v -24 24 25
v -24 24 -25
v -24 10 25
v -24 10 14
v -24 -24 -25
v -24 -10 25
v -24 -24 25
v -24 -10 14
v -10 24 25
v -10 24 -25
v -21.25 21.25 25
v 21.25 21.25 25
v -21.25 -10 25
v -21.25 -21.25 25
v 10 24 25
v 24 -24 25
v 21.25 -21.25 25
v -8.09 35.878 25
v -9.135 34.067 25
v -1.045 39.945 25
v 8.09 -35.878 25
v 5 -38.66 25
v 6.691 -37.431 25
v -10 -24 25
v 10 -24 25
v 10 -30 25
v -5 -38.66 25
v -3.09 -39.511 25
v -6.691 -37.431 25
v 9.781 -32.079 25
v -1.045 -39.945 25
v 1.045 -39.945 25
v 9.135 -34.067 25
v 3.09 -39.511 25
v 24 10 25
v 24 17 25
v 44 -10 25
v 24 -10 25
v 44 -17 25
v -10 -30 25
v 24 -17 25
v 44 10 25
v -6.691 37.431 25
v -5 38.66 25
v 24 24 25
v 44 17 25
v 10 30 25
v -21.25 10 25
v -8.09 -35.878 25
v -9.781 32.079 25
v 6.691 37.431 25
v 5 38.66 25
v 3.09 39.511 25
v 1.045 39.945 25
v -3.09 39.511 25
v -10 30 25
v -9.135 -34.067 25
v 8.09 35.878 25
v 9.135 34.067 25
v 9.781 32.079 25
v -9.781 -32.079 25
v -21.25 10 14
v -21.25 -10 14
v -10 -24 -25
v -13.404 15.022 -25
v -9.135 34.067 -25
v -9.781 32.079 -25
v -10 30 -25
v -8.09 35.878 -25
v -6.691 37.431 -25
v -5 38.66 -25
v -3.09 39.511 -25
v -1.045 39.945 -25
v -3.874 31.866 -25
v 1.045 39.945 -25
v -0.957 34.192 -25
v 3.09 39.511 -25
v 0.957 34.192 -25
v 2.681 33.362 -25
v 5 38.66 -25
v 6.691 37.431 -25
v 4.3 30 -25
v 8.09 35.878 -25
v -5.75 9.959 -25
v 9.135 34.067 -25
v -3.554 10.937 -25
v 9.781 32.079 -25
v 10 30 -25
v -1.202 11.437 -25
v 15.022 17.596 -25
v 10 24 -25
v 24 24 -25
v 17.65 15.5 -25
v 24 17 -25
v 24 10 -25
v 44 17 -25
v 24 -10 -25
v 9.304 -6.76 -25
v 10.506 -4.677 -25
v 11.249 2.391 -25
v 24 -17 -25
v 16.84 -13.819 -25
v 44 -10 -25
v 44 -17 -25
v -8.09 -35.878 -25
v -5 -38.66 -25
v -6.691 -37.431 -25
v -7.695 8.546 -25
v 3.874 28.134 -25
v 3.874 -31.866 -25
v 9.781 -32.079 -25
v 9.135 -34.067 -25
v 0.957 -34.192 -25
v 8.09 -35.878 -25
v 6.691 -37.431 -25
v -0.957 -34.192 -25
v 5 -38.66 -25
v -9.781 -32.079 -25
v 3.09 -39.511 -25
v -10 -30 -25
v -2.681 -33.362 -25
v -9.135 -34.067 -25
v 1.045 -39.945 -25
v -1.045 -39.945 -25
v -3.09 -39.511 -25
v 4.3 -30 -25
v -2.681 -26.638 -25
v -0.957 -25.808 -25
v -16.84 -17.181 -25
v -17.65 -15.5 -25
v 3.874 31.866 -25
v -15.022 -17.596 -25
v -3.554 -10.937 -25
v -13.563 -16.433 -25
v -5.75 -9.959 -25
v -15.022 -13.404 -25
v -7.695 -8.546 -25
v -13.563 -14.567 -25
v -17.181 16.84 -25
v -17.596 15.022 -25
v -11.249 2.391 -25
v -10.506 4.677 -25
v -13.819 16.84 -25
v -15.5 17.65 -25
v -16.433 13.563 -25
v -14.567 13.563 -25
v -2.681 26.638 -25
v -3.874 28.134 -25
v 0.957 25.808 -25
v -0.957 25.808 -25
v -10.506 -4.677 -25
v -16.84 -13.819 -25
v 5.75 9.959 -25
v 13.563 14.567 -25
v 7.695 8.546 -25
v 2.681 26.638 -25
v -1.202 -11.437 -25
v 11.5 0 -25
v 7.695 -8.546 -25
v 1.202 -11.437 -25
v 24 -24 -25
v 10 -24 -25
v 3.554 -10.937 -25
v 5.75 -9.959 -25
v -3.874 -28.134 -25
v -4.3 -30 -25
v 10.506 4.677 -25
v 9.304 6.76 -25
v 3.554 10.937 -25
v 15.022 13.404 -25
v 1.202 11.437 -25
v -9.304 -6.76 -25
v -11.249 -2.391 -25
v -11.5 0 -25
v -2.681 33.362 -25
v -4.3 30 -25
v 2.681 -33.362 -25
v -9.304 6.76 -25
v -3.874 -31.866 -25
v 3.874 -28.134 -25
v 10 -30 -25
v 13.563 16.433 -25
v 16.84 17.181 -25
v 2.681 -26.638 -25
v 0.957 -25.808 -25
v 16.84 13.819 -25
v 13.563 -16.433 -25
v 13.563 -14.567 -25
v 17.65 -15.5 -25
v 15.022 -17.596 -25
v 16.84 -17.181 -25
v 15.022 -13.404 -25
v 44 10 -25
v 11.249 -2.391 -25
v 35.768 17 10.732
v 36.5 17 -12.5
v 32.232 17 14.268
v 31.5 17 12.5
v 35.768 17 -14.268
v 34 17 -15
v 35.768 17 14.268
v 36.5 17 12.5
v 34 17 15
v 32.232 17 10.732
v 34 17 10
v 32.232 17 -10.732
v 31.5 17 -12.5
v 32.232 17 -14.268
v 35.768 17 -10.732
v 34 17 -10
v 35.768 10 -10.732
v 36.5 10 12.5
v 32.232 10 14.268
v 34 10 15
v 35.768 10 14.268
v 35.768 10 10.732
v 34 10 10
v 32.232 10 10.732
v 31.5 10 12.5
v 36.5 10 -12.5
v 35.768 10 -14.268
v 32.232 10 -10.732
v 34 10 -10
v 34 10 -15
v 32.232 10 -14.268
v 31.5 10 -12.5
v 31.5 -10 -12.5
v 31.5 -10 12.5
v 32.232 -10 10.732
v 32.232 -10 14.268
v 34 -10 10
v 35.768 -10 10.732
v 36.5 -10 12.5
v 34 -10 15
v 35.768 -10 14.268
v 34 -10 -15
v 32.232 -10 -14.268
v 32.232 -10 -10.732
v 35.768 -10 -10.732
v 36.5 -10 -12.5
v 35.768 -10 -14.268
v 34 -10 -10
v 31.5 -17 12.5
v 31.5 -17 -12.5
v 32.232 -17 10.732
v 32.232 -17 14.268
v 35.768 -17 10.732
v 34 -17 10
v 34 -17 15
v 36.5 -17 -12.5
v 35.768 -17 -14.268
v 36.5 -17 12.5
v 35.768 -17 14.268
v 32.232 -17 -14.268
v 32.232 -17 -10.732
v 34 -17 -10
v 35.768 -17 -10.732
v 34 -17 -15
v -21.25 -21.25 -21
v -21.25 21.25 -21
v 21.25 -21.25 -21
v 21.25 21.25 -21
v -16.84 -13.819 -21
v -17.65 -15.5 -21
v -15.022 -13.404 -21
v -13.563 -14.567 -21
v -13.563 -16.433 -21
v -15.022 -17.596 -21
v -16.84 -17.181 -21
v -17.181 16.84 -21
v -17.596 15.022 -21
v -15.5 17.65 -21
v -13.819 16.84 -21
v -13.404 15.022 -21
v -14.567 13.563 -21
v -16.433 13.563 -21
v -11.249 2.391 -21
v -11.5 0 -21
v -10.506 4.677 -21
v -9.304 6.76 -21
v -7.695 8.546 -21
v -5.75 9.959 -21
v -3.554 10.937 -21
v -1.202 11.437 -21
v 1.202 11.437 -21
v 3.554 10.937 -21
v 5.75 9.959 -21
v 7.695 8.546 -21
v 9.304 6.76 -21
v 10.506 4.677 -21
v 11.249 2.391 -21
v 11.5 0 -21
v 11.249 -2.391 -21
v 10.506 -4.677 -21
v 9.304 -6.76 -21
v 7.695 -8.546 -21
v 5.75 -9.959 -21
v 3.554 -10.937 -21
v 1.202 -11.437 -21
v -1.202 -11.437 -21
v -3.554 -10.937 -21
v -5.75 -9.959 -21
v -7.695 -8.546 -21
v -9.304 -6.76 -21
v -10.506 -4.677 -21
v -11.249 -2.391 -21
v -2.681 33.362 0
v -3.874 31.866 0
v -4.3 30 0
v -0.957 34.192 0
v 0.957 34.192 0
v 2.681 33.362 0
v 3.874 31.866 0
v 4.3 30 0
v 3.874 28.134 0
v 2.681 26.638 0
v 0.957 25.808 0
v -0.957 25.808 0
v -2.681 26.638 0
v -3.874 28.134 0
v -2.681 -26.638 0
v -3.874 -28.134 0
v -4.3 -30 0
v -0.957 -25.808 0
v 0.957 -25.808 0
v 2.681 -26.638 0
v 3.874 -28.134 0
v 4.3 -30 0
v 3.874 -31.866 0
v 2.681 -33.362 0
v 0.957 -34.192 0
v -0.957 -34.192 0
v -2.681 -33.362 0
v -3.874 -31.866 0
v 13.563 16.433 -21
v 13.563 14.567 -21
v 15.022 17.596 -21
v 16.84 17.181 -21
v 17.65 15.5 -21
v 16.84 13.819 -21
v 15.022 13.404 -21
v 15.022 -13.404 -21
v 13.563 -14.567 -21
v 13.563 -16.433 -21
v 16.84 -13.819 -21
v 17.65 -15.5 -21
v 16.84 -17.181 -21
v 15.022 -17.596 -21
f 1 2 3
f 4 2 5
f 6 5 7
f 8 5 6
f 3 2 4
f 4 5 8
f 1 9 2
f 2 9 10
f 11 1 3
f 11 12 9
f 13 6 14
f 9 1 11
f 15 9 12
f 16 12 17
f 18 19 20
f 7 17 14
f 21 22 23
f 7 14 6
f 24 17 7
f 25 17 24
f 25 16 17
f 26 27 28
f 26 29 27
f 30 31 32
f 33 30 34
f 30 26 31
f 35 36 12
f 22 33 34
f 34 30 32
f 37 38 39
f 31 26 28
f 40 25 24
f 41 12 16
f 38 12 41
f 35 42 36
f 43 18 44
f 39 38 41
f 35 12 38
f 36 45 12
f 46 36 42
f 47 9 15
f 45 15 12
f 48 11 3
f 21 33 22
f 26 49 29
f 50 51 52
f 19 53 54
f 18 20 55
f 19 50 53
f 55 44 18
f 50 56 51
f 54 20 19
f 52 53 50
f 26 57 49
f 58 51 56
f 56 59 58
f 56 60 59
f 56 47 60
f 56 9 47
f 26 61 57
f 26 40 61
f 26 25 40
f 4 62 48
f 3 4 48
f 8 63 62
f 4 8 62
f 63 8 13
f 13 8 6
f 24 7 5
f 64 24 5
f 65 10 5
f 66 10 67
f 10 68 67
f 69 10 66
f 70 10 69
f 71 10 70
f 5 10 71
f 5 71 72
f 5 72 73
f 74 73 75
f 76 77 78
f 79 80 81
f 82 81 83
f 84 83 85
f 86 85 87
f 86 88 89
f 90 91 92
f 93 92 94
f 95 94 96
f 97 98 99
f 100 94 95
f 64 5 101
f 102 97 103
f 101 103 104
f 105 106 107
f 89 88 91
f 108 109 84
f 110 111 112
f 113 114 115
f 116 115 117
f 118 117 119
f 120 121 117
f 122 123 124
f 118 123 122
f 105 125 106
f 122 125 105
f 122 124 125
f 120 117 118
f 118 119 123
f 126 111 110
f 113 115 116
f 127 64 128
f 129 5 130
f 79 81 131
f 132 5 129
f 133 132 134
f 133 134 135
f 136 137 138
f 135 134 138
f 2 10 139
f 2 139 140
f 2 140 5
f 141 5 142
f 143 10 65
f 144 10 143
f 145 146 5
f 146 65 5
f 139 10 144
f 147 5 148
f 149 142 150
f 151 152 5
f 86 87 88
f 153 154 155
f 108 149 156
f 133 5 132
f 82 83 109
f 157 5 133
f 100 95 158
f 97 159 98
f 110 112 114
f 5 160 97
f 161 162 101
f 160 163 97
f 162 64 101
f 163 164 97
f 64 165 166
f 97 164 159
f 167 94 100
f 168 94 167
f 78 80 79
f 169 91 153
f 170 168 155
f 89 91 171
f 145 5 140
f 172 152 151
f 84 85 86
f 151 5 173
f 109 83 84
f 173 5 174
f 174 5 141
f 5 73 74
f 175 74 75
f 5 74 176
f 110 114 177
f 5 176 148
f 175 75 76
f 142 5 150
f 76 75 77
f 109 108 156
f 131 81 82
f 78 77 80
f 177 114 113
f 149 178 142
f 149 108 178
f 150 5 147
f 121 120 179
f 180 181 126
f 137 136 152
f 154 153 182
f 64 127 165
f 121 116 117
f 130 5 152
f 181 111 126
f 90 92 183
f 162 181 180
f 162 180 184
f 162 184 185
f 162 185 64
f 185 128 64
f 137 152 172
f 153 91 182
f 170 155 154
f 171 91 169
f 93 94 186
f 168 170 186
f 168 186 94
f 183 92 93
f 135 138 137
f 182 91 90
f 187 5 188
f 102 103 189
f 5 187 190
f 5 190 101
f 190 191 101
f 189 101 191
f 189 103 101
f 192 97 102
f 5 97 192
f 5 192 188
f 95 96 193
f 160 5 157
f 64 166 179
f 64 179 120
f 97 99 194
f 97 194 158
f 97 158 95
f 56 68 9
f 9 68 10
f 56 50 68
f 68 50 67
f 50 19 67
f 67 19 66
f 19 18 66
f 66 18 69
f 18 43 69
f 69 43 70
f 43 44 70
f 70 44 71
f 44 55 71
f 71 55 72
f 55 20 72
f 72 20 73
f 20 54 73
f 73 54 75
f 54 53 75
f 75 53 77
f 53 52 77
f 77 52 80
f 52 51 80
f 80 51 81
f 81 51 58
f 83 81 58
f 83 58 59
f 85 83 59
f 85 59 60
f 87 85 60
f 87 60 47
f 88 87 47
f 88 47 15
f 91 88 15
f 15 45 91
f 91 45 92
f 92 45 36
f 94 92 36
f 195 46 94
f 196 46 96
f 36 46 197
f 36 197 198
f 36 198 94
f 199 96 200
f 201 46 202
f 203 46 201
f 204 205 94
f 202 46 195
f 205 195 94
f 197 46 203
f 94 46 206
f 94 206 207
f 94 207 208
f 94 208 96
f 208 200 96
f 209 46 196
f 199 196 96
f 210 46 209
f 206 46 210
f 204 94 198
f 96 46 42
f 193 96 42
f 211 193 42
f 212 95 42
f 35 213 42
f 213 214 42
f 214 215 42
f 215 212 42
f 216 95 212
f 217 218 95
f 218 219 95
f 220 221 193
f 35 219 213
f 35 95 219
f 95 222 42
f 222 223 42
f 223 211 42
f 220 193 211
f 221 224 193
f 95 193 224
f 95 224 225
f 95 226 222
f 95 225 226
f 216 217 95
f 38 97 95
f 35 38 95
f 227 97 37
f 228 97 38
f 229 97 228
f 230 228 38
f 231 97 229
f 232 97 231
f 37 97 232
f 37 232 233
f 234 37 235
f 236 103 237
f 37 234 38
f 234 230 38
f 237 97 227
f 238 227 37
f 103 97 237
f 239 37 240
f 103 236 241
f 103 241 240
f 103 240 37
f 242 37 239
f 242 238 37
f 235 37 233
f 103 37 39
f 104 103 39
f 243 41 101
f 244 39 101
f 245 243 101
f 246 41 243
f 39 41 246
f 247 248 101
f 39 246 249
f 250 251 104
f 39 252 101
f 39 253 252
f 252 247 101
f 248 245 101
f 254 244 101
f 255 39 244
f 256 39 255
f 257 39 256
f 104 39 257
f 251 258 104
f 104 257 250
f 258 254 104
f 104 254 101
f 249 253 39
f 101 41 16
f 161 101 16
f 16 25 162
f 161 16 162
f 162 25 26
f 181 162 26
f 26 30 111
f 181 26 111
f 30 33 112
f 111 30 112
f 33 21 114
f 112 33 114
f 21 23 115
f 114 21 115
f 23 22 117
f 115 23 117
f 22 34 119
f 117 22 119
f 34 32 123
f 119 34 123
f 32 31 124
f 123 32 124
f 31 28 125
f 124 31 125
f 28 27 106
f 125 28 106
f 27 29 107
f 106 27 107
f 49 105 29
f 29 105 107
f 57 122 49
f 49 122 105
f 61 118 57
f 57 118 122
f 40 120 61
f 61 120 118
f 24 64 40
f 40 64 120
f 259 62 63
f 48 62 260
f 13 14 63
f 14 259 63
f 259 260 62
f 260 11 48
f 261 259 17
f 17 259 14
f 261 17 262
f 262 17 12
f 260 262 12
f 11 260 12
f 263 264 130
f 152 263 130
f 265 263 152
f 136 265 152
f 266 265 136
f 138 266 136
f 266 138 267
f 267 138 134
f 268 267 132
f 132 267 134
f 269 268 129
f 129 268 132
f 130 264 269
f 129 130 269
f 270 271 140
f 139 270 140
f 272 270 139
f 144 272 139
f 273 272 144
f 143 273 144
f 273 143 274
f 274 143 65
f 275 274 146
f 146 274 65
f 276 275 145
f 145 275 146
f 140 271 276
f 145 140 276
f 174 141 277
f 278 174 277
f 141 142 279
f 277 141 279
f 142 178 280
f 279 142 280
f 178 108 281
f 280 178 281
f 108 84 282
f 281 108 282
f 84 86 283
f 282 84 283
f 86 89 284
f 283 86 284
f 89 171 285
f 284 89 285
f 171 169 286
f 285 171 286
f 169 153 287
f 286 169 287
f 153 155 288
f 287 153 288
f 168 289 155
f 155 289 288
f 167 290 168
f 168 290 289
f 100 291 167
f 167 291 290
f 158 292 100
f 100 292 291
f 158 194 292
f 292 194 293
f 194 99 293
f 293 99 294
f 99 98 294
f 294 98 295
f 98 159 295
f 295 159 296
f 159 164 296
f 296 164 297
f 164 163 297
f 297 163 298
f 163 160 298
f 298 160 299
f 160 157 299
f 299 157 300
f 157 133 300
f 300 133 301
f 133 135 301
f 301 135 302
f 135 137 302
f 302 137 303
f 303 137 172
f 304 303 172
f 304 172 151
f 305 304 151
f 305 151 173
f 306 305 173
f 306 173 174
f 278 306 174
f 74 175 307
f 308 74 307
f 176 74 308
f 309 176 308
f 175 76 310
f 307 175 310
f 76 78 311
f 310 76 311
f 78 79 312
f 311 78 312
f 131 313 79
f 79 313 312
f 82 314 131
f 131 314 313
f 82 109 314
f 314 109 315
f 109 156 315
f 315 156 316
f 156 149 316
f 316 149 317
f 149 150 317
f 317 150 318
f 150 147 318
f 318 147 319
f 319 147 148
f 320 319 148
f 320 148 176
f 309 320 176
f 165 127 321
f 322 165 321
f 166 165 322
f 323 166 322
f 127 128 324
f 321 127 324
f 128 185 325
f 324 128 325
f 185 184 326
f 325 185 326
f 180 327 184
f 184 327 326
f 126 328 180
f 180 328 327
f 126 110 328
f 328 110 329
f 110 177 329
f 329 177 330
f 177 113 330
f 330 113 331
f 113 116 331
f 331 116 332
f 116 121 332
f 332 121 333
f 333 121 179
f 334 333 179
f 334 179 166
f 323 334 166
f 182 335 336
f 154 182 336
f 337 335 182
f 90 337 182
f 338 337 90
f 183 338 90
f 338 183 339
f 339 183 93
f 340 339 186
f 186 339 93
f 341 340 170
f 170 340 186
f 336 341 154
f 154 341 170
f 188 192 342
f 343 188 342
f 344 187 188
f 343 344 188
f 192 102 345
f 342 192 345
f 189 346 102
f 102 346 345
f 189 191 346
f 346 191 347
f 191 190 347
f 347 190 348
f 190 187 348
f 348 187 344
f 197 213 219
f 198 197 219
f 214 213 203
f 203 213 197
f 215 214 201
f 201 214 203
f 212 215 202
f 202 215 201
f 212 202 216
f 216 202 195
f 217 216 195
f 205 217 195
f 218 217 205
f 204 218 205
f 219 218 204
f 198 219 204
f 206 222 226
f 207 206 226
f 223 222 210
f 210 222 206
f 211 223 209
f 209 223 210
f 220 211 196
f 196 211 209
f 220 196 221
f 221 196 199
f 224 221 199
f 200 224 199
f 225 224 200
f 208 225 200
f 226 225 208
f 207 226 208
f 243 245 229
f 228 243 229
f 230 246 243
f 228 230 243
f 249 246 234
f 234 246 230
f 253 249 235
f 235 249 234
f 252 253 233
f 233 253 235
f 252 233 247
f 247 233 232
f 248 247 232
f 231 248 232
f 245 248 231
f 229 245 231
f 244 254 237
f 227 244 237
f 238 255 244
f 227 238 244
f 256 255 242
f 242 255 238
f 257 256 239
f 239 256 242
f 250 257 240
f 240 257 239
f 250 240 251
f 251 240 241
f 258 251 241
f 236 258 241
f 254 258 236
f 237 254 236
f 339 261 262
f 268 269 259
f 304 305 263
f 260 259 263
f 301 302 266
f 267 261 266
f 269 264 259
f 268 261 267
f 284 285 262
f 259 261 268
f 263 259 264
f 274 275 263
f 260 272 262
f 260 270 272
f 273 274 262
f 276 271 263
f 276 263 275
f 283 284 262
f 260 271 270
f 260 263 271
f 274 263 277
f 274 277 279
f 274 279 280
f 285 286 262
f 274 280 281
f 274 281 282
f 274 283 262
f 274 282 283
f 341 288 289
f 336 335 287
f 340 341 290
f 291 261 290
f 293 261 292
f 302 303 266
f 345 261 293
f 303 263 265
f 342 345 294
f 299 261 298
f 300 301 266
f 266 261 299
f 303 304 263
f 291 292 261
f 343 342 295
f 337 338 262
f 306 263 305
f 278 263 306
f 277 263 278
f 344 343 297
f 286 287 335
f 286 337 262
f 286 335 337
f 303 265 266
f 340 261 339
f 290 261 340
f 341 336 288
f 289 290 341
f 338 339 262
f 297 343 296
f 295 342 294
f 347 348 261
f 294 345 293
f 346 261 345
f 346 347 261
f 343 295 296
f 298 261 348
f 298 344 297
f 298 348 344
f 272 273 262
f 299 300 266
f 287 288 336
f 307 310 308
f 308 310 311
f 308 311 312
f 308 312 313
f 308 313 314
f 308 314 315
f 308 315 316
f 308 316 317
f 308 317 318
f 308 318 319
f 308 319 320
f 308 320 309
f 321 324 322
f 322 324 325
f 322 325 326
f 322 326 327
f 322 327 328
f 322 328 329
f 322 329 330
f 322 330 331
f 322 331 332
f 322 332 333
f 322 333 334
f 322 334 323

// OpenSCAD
//include <resina_carriage.scad>;

module un_agujero(){
  translate([31/2,31/2,-10])cylinder(r=4.3/2,h=100,center=true);
}

module agujeros_nema(){
  mirror([0,0,0])un_agujero();
  mirror([1,0,0])un_agujero();
  mirror([0,1,0])un_agujero();
  mirror([1,1,0])un_agujero();
  cylinder(r=23/2,h=100,center=true);
}

rotate([180,0,0])

difference(){
union(){
  cube([48,48,50],center=true);
  
  // Registros varillas lisas
  cube([20,60,50],center=true);
  translate([0,40-10,0])cylinder(r=10,h=50,center=true);
  translate([0,-40+10,0])cylinder(r=10,h=50,center=true);

  // Registro perfil alu
  translate([48/2+10,0,0])cube([20,34,50],center=true);

}

union(){
  translate([0,30,0])cylinder(r=4.3,h=150);
  translate([0,-30,0])cylinder(r=4.3,h=150);
  translate([0,0,-9])cube([42.5,42.5,60],center=true);

  agujeros_nema();

  // agujero_cables
  translate([-20,0,-24])cube([20,20,20],center=true);

  // hueco perfil
  translate([48/2+10,0,0])cube([20,20,50],center=true);
  // tornillos perfil
  translate([48/2+10,0,12.5])rotate([90,0,0])cylinder(r=2.5,h=100,center=true);
  translate([48/2+10,0,-12.5])rotate([90,0,0])cylinder(r=2.5,h=100,center=true);

}
}
